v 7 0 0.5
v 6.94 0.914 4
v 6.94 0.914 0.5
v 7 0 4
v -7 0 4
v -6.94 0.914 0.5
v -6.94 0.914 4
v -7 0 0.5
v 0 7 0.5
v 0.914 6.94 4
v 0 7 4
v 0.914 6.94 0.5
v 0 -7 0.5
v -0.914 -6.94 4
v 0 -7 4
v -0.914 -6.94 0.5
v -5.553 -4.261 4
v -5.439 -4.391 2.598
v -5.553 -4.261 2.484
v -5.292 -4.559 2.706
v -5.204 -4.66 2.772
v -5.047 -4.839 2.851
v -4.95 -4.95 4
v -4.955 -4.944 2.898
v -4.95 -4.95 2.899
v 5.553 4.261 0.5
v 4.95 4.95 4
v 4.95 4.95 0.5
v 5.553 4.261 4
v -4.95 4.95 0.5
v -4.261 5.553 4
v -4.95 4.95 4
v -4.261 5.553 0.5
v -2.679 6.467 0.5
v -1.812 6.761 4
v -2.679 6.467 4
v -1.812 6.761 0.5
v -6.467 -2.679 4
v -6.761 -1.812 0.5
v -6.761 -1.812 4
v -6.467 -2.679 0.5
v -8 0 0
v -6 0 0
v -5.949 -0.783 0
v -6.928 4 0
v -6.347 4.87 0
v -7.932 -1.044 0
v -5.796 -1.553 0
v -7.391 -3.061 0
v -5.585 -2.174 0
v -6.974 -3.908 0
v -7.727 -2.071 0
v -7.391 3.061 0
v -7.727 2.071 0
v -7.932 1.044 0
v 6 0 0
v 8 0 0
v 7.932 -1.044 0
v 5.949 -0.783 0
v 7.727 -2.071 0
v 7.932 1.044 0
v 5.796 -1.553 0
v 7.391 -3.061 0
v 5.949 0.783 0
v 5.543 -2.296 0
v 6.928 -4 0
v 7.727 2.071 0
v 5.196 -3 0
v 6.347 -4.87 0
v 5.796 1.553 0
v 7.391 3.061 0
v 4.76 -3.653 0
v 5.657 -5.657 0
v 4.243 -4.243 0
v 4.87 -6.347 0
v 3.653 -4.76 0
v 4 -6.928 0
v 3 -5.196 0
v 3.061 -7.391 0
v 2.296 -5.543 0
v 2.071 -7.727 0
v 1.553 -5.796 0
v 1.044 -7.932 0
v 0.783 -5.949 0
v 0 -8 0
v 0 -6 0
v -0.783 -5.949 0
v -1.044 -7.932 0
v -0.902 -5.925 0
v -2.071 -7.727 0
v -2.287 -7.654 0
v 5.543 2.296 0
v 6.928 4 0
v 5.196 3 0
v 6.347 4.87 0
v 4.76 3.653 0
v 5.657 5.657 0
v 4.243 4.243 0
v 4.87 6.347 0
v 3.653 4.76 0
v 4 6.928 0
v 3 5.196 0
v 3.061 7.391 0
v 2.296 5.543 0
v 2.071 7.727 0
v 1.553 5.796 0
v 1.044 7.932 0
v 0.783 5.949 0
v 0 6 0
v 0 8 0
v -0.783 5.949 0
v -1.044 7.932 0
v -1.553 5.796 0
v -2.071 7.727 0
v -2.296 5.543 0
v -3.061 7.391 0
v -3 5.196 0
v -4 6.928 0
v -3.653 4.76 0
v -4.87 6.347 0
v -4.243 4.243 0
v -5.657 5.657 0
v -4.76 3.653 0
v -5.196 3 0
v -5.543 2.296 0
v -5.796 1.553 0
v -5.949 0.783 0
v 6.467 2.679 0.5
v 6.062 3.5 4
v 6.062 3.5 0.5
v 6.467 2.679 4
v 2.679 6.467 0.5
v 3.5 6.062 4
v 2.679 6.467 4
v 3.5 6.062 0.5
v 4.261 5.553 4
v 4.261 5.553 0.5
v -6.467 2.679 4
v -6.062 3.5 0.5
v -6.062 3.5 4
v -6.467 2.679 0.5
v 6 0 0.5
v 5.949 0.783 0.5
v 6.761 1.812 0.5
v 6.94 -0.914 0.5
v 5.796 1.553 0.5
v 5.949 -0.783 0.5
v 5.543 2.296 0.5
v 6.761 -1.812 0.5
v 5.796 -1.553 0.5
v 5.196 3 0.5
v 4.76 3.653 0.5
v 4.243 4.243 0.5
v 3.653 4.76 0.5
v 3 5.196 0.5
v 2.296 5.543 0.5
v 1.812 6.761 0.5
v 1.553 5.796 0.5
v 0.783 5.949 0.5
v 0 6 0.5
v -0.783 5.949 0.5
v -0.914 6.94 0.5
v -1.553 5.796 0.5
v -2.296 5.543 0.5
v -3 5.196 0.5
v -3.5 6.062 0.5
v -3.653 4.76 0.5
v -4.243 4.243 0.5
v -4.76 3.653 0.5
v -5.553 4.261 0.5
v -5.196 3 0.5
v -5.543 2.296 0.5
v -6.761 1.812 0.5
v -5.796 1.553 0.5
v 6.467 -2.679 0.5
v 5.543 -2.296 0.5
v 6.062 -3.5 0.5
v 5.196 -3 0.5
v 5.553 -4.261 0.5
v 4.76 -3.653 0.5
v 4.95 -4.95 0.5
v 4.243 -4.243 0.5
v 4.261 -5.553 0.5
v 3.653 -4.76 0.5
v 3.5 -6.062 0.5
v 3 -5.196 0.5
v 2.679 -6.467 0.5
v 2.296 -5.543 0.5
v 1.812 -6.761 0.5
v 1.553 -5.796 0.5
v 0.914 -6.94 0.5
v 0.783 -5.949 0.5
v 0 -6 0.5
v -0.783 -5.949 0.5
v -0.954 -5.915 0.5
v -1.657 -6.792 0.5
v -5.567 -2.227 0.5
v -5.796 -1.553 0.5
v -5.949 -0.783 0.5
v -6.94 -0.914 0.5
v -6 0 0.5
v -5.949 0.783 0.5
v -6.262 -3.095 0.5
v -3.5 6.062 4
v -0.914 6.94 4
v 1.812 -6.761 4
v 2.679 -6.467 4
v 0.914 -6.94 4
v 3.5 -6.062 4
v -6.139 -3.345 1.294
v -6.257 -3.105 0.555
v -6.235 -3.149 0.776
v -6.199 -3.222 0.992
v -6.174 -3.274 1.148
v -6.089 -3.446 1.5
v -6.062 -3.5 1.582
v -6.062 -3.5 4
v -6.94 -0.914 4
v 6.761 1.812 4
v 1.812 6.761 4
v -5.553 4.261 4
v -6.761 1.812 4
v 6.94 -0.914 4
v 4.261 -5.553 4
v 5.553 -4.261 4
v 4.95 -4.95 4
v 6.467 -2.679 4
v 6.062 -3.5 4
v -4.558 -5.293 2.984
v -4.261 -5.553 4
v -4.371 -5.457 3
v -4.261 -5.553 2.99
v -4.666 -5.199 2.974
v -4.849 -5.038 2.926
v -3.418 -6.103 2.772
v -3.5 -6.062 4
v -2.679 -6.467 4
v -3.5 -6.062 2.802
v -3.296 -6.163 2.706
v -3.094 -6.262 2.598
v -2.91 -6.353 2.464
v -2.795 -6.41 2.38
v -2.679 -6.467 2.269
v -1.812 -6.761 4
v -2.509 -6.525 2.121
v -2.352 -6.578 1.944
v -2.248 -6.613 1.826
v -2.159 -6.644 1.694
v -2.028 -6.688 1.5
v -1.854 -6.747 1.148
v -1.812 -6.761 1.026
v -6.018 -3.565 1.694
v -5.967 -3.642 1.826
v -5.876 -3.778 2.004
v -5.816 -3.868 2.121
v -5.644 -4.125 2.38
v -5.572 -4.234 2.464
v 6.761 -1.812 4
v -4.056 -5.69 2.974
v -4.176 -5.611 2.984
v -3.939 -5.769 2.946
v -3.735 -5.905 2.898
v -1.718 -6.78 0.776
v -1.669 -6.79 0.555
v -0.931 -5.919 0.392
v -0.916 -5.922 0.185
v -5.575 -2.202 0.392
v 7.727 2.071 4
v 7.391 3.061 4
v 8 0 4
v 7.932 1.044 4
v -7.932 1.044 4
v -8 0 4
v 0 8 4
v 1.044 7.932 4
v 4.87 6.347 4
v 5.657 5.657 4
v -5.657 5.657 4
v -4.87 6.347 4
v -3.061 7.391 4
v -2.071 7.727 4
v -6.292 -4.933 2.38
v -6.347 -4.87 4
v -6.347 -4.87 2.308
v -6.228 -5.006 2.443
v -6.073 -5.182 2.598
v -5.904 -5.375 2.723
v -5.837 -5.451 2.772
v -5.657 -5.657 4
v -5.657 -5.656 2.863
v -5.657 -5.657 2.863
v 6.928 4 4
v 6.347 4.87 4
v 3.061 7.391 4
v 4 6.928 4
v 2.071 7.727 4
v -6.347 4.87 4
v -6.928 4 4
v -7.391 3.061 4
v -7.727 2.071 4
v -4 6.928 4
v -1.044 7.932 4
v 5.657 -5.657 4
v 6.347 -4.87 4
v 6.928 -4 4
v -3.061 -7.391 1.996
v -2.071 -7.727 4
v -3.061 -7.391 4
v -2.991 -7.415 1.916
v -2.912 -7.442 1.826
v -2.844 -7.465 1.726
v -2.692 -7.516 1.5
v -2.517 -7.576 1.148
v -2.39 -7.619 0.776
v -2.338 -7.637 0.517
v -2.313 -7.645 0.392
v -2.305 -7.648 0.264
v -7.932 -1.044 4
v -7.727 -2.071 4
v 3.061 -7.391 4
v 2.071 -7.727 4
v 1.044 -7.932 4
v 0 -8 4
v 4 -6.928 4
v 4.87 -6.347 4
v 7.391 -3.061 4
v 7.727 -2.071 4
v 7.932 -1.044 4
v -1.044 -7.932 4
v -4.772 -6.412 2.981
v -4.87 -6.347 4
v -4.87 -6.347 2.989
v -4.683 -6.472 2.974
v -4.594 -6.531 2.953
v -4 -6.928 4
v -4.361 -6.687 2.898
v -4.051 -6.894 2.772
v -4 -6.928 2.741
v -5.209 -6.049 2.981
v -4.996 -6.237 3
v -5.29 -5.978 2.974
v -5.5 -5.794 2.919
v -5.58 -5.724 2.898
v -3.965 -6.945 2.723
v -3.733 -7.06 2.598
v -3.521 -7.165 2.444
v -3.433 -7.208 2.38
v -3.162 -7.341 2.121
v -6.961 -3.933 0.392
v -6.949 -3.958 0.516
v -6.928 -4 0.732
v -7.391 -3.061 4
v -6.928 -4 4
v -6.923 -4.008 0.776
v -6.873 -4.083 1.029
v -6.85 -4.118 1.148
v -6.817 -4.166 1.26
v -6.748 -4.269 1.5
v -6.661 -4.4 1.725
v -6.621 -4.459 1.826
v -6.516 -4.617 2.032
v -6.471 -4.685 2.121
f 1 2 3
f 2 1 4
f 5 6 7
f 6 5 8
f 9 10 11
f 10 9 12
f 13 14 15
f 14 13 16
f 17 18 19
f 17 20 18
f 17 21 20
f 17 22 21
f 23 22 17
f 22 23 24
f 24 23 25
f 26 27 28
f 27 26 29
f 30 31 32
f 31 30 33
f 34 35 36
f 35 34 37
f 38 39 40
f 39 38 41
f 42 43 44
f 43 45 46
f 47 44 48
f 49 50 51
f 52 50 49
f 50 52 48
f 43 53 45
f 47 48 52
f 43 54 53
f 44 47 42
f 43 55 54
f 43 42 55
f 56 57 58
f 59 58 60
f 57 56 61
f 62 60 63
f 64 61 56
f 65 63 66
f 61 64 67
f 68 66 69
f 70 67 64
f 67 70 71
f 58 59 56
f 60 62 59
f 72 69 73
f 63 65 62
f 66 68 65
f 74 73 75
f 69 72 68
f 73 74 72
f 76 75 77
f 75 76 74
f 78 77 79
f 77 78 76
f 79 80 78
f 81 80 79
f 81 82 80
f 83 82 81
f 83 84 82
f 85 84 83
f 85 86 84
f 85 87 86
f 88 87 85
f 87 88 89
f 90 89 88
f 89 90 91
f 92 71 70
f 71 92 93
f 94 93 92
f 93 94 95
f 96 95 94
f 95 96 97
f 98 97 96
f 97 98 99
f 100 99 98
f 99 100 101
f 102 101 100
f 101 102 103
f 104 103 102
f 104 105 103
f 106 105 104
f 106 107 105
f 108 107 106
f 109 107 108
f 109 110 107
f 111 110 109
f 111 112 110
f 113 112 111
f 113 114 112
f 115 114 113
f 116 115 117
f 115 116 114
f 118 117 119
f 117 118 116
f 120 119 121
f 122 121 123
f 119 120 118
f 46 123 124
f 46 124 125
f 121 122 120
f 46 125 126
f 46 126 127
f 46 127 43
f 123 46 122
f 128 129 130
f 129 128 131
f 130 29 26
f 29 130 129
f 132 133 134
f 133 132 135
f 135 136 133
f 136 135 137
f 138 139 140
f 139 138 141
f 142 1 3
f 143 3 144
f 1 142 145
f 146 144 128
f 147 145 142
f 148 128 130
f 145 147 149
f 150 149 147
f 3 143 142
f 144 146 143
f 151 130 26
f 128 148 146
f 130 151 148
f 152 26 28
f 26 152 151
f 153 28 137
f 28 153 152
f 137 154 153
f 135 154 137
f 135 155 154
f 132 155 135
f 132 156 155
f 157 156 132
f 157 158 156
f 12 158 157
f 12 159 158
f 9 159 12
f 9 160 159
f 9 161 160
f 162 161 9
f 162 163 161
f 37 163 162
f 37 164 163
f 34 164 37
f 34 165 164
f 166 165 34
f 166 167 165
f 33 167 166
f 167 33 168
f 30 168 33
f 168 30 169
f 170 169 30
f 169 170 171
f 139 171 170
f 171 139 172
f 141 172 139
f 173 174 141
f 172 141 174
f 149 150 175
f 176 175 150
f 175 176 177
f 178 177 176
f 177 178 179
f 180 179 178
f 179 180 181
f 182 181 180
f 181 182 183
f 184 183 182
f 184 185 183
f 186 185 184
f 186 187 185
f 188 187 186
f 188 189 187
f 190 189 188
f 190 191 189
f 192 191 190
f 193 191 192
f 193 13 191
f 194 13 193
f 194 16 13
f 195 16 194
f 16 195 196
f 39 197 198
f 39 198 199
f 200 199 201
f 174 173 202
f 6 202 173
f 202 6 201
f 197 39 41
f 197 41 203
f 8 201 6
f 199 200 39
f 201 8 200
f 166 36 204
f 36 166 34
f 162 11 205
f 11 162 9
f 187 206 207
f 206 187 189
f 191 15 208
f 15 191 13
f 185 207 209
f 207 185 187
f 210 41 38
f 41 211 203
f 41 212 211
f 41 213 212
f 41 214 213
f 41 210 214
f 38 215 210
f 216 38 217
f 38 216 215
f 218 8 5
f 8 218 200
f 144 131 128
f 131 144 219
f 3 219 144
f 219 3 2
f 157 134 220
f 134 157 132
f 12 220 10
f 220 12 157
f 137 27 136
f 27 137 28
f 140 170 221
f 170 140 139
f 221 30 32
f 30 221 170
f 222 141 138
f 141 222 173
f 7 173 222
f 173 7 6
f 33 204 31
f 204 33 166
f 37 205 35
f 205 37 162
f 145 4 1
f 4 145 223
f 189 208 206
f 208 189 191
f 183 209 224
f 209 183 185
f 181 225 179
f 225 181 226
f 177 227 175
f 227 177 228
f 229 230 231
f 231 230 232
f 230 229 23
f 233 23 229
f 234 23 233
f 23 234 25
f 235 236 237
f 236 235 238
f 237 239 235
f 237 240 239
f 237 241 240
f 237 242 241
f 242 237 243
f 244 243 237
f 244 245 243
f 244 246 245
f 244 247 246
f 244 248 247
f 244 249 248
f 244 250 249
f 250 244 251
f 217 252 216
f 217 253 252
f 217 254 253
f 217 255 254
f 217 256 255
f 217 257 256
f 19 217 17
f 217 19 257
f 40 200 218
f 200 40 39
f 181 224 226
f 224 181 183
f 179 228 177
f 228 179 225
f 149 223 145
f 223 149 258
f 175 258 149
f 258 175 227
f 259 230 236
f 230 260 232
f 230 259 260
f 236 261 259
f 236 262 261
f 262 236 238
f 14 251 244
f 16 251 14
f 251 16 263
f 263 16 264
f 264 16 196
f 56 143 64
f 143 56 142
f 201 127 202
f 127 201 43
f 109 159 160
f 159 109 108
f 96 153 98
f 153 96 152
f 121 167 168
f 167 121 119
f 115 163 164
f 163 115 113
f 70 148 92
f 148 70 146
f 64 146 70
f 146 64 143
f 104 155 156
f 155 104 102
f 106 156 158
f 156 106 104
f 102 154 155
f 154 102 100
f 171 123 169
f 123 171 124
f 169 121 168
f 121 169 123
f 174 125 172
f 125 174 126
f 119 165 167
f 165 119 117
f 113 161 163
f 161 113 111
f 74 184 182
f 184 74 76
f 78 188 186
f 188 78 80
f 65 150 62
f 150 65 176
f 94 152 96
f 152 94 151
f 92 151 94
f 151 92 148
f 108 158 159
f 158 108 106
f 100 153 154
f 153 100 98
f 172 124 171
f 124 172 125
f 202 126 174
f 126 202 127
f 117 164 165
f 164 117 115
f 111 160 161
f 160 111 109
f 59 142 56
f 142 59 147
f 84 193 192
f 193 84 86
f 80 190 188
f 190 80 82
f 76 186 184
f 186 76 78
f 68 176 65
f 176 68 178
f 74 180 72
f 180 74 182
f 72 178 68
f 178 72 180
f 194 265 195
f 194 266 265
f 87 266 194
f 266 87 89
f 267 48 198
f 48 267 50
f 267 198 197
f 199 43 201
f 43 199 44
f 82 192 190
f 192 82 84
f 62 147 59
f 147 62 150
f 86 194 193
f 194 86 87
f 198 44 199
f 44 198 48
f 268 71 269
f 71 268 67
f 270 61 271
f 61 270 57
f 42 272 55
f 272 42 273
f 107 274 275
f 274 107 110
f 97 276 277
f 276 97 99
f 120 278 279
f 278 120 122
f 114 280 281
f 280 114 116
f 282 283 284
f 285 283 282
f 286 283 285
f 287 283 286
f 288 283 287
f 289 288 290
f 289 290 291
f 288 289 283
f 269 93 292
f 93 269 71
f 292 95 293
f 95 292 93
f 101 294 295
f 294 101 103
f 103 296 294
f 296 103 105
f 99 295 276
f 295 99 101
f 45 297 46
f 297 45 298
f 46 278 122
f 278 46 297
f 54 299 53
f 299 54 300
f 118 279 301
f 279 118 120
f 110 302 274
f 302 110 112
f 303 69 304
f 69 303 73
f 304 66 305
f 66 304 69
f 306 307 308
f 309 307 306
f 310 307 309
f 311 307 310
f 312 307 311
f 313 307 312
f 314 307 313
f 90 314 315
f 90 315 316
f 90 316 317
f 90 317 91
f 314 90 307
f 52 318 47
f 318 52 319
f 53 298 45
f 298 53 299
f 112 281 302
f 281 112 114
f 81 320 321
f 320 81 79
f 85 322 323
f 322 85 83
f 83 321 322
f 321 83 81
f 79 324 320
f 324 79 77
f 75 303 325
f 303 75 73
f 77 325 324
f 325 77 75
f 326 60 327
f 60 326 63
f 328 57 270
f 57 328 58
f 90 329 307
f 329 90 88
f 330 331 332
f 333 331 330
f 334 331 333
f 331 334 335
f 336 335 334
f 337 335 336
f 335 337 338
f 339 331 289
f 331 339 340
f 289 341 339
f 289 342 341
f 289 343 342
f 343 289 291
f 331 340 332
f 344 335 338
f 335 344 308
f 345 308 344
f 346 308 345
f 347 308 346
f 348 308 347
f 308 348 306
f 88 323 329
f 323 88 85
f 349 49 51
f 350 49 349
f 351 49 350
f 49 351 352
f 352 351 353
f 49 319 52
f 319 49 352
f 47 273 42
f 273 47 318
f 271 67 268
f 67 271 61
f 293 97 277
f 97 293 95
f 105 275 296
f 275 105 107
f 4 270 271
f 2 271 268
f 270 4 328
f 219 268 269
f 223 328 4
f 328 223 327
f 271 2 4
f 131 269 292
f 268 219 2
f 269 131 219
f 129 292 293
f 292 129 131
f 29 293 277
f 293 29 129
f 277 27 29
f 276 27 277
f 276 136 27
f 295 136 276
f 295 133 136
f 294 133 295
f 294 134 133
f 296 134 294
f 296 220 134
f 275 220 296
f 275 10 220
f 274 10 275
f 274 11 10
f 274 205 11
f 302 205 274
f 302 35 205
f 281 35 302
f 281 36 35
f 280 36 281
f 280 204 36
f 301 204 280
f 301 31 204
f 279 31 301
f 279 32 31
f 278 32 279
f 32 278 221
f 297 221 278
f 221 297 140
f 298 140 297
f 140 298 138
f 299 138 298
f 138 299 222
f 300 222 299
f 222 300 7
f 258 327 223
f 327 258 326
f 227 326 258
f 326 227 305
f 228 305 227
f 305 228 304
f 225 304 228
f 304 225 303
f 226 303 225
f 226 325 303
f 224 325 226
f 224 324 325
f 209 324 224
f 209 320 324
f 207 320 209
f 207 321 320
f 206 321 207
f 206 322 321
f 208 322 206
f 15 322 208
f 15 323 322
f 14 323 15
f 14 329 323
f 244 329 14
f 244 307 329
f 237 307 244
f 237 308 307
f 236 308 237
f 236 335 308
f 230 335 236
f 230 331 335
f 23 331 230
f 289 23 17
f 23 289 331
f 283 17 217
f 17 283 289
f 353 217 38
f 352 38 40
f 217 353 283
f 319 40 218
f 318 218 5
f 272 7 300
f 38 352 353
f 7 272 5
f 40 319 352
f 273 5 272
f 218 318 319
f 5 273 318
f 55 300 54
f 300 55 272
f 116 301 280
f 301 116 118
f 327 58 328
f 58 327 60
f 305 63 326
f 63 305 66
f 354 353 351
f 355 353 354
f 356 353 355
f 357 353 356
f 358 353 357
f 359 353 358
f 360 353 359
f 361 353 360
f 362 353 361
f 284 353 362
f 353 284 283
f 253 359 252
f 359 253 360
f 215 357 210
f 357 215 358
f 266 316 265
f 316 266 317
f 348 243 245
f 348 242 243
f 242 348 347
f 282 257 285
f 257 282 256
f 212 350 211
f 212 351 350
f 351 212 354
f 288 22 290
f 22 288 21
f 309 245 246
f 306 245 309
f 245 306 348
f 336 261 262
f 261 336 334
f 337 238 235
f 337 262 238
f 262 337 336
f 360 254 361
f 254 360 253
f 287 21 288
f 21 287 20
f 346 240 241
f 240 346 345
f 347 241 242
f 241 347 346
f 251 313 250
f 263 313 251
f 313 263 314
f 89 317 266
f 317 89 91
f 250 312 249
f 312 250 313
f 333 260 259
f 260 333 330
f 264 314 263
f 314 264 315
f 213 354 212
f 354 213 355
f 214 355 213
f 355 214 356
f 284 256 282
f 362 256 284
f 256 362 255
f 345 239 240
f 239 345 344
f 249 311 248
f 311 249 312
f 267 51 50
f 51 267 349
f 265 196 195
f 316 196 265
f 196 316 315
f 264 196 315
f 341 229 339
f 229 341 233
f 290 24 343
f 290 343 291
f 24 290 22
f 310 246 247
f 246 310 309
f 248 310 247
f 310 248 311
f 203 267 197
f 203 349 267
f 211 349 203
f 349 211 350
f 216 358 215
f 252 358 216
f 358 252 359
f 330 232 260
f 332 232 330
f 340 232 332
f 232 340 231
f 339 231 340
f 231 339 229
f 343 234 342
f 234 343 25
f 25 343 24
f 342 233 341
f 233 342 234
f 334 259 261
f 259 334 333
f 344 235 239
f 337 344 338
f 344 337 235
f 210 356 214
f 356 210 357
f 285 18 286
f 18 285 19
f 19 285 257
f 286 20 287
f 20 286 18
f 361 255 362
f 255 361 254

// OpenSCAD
// file: ../build_environments.scad
// build_environments.scad: modules to build level sections
//

module pool(diameter=10.0, wall_height=2.0, step_width=3.0, connections=[])
{
    difference() {
        union() {
        difference() {
            cylinder(h=0.5,r1=diameter+step_width,r2=diameter+step_width,$fn=48);
            translate([0,0,-0.1])
                cylinder(h=0.7,r1=diameter,r2=diameter,$fn=48);
        }
        difference() {
            cylinder(h=wall_height,r1=diameter+step_width+1.0,r2=diameter+step_width+1.0,$fn=48);
            translate([0,0,-0.1])
                cylinder(h=wall_height+0.2,r1=diameter+step_width,r2=diameter+step_width,$fn=48);
        }
        }
    
        for (c = connections)
        {
            rotate([0,90,0]) {
                angle = atan2(c[1],c[0]);
                rotate([-angle,0,0]) {
                    cylinder(h=diameter+5.0,r1=c[2],r2=c[2],$fn=48);
                }
            }
        }
    }
}

module straight(length=10.0, width=2.0, dy1=0.0, dy2=0.0, dz=0.0)
{
    dims = [0, 0, 0, 0, 0, (dz/length)];
    matrix = [
        [ 1, dims[0], dims[1], 0 ],
        [ dims[2], 1, dims[4], 0 ],
        [ dims[5], dims[3], 1, 0 ],
        [ 0, 0, 0, 1 ]
    ];
    multmatrix(matrix)
    difference() {
        translate([dy1,0,0])
        union() {
            rotate([0,90,0]) {
                difference() {
                    cylinder(h=(length-dy1-dy2),r1=width+1.0,r2=width+1.0,$fn=24);
                    translate([0,0,-0.1])
                        cylinder(h=(length-dy1-dy2+0.2),r1=width,r2=width,$fn=24);
                }
                difference() {
                    cylinder(h=1.0,r1=width+2.0,r2=width+2.0,$fn=24);
                    translate([0,0,-0.1])
                        cylinder(h=1.2,r1=width,r2=width,$fn=24);
                }
                translate([0,0,(length-dy1-dy2)-1.0]) {
                    difference() {
                        cylinder(h=1.0,r1=width+2.0,r2=width+2.0,$fn=24);
                        translate([0,0,-0.1])
                            cylinder(h=1.2,r1=width,r2=width,$fn=24);
                    }
                }
            }
        }
        translate([0,0,-(2*width+4.0)/2])
            cube([3*length,3*length,2*width+4.0],center=true);
    }
}

module curve(p0=[0,0], center=[0,0], dir=1, angle=0.0, width=2.0)
{
    radius = sqrt((p0[0]-center[0])*(p0[0]-center[0]) + (p0[1]-center[1])*(p0[1]-center[1]));
    if (dir == 0) {
        difference() {
            rotate([0,0,-90])
            difference() {
                rotate_extrude(angle = angle, convexity = 10, $fn=32)
                    translate([radius, 0, 0])
                        circle(r = width+1.0,$fn=24);
                rotate([0,0,-1.0])
                    rotate_extrude(angle = angle+2.0, convexity = 10, $fn=32)
                        translate([radius, 0, 0])
                            circle(r = width,$fn=24);
            }
            translate([0,0,-(2*width+4.0)/2])
                cube([5*radius,5*radius,2*width+4.0],center=true);
        }
    }
    else {
        difference() {
            rotate([0,0,90])
            difference() {
                rotate_extrude(angle = -angle, convexity = 10, $fn=32)
                    translate([radius, 0, 0])
                        circle(r = width+1.0,$fn=24);
                rotate([0,0,1.0])
                    rotate_extrude(angle = -angle-2.0, convexity = 10, $fn=32)
                        translate([radius, 0, 0])
                            circle(r = width,$fn=24);
            }
            translate([0,0,-(2*width+4.0)/2])
                cube([5*radius,5*radius,2*width+4.0],center=true);
        }
    }

}

// test pool
//pool(diameter=12.0000, wall_height=3.0000, step_width=3.0000, connections=[[0.0000,-26.0000,2.0000], [23.6074,0.0000,2.0000]]);

// test straight, slope
//straight(length=26.0000, width=2.0000, dy1=11.8322, dy2=6.7082, dz=0.0000);
//straight(length=29.1549, width=12.0000, dy1=0.0000, dy2=0.0000, dz=-15.0000);

// test curve
//curve(p0=[23.6074, 0.0000], center=[23.6074, 5.0000], dir=0, angle=60.1011, width=2.0000);
//curve(p0=[33.6426, 12.4219], center=[37.9771, 9.9295], dir=1, angle=120.4627, width=2.0000);
// main file
use <../build_environments.scad>;
pool(diameter=6.0000, wall_height=4.0000, step_width=1.0000, connections=[[-6.2955,-7.8594,3.0000]]);
